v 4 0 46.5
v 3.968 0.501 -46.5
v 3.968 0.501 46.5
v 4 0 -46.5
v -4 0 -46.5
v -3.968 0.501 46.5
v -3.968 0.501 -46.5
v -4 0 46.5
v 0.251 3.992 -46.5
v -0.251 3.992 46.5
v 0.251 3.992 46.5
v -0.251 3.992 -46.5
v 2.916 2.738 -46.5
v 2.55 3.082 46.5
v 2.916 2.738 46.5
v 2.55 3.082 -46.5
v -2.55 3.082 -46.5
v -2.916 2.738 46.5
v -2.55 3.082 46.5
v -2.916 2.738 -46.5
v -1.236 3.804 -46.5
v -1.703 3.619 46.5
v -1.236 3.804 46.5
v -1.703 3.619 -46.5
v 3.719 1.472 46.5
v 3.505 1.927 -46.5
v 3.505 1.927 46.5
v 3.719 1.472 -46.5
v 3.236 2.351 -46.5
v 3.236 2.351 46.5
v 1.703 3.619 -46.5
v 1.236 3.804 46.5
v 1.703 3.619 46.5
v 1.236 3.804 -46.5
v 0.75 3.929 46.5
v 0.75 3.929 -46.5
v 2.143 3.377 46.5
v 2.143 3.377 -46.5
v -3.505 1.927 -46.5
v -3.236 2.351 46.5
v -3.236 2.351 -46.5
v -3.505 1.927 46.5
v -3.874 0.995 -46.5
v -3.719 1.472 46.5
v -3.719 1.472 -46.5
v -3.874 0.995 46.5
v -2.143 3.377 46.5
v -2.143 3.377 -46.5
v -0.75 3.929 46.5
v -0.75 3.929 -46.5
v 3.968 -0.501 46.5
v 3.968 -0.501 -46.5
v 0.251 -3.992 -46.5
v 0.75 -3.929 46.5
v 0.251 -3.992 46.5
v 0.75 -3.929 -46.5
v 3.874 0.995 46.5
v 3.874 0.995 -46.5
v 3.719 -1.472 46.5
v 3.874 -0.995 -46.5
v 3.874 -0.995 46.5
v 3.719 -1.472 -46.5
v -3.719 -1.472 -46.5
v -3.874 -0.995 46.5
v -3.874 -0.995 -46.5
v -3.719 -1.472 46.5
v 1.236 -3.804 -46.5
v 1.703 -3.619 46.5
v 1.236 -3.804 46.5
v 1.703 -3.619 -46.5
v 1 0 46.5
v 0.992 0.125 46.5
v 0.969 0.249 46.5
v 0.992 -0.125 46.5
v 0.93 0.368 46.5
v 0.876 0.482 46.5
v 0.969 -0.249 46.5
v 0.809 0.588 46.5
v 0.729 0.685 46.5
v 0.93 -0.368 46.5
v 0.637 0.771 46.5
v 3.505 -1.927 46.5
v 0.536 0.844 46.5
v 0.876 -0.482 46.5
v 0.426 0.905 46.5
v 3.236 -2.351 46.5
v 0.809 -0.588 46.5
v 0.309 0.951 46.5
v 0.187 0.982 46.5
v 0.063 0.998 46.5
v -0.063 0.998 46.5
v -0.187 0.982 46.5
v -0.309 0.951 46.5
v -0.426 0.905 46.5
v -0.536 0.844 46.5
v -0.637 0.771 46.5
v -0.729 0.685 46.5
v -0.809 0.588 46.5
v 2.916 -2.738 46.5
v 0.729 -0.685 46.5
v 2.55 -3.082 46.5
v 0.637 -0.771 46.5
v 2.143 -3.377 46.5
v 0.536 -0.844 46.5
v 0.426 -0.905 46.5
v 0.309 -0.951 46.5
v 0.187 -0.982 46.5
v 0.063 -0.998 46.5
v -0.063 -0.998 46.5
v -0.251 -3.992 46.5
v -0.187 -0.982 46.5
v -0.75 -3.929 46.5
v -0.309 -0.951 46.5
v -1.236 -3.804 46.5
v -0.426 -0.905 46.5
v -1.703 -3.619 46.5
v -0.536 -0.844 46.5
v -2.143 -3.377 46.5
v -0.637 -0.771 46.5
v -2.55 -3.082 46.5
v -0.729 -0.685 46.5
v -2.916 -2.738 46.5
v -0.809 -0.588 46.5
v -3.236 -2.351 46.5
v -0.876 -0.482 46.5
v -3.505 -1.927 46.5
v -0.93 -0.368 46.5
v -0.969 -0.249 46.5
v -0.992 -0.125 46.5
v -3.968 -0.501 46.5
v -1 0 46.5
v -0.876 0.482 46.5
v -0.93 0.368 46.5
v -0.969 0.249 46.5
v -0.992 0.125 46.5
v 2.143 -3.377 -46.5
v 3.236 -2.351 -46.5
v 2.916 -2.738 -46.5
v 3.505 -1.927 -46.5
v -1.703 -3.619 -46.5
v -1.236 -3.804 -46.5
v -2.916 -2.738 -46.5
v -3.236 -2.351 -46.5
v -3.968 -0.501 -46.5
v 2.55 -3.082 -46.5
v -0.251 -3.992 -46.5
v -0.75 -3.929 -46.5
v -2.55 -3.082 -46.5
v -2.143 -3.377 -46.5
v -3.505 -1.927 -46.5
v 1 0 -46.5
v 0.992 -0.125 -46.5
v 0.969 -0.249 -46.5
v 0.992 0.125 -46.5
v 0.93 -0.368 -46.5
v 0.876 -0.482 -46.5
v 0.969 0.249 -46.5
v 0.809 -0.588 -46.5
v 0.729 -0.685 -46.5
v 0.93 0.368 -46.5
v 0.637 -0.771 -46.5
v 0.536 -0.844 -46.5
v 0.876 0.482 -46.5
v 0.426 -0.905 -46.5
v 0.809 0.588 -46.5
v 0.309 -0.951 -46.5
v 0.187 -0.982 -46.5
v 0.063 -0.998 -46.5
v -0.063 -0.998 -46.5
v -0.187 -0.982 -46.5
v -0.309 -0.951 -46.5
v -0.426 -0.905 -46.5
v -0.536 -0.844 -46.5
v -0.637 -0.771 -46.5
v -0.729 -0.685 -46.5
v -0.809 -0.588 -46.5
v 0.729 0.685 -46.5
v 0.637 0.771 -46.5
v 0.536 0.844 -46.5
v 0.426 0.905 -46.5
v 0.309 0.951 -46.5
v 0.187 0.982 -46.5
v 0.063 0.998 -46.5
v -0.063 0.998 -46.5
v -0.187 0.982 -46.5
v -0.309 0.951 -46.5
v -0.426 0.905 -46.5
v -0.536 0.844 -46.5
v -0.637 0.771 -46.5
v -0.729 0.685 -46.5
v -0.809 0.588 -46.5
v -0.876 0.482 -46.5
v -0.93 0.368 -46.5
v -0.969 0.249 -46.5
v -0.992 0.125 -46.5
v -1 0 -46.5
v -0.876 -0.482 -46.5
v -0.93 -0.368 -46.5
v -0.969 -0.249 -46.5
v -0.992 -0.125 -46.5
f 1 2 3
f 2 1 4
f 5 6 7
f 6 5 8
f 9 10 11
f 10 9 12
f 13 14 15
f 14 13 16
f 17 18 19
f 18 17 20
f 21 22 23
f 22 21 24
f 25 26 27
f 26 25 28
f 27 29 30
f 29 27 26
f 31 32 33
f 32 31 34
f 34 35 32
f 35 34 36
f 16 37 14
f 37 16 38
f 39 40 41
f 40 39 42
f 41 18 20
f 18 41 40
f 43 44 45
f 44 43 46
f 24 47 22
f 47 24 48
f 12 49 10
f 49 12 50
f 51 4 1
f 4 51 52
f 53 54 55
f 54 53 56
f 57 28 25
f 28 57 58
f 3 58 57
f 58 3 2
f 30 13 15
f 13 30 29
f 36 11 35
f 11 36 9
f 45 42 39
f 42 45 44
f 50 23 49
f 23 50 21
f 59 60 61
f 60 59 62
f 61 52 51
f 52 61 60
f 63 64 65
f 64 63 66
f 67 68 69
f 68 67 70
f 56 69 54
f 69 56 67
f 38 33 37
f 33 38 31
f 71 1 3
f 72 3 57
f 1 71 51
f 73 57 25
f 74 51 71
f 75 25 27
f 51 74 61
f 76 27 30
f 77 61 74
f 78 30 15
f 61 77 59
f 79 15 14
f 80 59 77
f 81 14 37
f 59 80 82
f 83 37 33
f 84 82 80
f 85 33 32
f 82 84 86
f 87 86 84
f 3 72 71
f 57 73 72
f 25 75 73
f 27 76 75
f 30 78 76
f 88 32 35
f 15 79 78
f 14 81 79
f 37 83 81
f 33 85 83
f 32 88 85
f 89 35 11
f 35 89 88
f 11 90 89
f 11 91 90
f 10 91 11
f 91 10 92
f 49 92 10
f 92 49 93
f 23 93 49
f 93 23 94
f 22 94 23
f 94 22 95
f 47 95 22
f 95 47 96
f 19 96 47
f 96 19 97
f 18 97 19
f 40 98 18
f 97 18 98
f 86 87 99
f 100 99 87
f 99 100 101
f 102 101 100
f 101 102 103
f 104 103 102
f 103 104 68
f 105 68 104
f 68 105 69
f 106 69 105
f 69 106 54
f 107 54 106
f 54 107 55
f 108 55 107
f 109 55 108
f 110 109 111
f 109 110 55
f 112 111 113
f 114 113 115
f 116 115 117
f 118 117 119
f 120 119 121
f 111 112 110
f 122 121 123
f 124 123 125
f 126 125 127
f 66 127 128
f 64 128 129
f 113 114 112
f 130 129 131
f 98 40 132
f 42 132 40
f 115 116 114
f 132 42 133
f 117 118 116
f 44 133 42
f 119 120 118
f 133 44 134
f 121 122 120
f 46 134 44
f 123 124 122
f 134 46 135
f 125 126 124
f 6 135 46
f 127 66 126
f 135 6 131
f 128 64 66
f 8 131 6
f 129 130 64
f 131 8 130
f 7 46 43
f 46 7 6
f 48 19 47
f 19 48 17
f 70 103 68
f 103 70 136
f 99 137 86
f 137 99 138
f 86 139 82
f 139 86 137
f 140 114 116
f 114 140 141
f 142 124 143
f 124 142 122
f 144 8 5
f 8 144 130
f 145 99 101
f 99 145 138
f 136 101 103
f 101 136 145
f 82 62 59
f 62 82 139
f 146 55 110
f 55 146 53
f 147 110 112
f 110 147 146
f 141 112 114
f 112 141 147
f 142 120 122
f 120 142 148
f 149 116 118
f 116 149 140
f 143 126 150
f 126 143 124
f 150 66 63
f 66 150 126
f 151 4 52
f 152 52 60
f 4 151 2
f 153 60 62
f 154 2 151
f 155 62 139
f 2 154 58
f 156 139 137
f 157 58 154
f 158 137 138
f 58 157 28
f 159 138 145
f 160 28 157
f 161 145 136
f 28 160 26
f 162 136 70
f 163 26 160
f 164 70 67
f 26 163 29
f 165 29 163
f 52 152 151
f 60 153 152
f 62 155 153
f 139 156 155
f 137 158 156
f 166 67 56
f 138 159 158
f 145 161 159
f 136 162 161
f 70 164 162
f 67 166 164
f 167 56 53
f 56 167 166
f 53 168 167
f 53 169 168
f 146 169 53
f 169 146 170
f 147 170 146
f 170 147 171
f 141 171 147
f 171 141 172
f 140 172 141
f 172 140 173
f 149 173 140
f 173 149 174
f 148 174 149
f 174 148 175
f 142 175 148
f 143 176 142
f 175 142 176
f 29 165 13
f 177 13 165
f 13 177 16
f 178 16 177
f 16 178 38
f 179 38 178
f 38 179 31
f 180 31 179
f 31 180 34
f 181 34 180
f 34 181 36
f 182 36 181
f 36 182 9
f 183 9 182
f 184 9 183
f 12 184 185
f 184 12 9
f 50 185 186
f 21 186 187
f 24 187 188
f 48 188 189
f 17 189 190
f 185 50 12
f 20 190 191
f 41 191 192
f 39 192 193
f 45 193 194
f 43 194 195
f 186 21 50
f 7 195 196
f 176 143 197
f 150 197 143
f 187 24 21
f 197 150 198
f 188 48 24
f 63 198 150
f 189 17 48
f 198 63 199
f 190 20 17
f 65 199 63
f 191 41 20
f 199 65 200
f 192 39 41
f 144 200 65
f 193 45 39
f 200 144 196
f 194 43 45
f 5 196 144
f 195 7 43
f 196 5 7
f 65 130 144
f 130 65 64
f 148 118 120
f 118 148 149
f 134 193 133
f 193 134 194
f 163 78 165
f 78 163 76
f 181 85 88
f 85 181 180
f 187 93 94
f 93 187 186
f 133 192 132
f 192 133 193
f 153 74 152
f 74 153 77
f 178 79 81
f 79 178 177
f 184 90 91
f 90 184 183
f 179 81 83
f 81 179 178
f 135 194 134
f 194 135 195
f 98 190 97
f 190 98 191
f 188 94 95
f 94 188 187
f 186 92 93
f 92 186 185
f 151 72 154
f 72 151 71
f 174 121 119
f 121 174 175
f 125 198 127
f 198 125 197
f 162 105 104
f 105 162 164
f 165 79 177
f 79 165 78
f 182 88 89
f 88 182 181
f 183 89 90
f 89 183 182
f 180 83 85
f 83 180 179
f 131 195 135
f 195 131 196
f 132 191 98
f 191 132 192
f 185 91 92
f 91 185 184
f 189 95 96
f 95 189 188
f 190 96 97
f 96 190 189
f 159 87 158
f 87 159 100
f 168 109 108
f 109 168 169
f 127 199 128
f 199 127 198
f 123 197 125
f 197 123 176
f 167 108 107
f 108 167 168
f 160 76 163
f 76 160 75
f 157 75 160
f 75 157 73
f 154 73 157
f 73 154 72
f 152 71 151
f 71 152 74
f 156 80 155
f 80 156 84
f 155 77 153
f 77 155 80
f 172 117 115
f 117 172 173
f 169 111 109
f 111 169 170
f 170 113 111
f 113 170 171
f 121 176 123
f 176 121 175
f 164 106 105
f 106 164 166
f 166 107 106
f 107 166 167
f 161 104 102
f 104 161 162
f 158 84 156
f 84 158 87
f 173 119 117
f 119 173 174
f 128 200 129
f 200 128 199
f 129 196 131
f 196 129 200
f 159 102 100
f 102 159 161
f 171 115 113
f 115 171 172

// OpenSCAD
$fn = 50;


difference() {
	union() {
		translate(v = [0, 0, -46.5000000000]) {
			cylinder(h = 93, r = 4.0000000000);
		}
	}
	union() {
		translate(v = [0, 0, -100.0000000000]) {
			cylinder(h = 200, r = 1.0000000000);
		}
	}
}
